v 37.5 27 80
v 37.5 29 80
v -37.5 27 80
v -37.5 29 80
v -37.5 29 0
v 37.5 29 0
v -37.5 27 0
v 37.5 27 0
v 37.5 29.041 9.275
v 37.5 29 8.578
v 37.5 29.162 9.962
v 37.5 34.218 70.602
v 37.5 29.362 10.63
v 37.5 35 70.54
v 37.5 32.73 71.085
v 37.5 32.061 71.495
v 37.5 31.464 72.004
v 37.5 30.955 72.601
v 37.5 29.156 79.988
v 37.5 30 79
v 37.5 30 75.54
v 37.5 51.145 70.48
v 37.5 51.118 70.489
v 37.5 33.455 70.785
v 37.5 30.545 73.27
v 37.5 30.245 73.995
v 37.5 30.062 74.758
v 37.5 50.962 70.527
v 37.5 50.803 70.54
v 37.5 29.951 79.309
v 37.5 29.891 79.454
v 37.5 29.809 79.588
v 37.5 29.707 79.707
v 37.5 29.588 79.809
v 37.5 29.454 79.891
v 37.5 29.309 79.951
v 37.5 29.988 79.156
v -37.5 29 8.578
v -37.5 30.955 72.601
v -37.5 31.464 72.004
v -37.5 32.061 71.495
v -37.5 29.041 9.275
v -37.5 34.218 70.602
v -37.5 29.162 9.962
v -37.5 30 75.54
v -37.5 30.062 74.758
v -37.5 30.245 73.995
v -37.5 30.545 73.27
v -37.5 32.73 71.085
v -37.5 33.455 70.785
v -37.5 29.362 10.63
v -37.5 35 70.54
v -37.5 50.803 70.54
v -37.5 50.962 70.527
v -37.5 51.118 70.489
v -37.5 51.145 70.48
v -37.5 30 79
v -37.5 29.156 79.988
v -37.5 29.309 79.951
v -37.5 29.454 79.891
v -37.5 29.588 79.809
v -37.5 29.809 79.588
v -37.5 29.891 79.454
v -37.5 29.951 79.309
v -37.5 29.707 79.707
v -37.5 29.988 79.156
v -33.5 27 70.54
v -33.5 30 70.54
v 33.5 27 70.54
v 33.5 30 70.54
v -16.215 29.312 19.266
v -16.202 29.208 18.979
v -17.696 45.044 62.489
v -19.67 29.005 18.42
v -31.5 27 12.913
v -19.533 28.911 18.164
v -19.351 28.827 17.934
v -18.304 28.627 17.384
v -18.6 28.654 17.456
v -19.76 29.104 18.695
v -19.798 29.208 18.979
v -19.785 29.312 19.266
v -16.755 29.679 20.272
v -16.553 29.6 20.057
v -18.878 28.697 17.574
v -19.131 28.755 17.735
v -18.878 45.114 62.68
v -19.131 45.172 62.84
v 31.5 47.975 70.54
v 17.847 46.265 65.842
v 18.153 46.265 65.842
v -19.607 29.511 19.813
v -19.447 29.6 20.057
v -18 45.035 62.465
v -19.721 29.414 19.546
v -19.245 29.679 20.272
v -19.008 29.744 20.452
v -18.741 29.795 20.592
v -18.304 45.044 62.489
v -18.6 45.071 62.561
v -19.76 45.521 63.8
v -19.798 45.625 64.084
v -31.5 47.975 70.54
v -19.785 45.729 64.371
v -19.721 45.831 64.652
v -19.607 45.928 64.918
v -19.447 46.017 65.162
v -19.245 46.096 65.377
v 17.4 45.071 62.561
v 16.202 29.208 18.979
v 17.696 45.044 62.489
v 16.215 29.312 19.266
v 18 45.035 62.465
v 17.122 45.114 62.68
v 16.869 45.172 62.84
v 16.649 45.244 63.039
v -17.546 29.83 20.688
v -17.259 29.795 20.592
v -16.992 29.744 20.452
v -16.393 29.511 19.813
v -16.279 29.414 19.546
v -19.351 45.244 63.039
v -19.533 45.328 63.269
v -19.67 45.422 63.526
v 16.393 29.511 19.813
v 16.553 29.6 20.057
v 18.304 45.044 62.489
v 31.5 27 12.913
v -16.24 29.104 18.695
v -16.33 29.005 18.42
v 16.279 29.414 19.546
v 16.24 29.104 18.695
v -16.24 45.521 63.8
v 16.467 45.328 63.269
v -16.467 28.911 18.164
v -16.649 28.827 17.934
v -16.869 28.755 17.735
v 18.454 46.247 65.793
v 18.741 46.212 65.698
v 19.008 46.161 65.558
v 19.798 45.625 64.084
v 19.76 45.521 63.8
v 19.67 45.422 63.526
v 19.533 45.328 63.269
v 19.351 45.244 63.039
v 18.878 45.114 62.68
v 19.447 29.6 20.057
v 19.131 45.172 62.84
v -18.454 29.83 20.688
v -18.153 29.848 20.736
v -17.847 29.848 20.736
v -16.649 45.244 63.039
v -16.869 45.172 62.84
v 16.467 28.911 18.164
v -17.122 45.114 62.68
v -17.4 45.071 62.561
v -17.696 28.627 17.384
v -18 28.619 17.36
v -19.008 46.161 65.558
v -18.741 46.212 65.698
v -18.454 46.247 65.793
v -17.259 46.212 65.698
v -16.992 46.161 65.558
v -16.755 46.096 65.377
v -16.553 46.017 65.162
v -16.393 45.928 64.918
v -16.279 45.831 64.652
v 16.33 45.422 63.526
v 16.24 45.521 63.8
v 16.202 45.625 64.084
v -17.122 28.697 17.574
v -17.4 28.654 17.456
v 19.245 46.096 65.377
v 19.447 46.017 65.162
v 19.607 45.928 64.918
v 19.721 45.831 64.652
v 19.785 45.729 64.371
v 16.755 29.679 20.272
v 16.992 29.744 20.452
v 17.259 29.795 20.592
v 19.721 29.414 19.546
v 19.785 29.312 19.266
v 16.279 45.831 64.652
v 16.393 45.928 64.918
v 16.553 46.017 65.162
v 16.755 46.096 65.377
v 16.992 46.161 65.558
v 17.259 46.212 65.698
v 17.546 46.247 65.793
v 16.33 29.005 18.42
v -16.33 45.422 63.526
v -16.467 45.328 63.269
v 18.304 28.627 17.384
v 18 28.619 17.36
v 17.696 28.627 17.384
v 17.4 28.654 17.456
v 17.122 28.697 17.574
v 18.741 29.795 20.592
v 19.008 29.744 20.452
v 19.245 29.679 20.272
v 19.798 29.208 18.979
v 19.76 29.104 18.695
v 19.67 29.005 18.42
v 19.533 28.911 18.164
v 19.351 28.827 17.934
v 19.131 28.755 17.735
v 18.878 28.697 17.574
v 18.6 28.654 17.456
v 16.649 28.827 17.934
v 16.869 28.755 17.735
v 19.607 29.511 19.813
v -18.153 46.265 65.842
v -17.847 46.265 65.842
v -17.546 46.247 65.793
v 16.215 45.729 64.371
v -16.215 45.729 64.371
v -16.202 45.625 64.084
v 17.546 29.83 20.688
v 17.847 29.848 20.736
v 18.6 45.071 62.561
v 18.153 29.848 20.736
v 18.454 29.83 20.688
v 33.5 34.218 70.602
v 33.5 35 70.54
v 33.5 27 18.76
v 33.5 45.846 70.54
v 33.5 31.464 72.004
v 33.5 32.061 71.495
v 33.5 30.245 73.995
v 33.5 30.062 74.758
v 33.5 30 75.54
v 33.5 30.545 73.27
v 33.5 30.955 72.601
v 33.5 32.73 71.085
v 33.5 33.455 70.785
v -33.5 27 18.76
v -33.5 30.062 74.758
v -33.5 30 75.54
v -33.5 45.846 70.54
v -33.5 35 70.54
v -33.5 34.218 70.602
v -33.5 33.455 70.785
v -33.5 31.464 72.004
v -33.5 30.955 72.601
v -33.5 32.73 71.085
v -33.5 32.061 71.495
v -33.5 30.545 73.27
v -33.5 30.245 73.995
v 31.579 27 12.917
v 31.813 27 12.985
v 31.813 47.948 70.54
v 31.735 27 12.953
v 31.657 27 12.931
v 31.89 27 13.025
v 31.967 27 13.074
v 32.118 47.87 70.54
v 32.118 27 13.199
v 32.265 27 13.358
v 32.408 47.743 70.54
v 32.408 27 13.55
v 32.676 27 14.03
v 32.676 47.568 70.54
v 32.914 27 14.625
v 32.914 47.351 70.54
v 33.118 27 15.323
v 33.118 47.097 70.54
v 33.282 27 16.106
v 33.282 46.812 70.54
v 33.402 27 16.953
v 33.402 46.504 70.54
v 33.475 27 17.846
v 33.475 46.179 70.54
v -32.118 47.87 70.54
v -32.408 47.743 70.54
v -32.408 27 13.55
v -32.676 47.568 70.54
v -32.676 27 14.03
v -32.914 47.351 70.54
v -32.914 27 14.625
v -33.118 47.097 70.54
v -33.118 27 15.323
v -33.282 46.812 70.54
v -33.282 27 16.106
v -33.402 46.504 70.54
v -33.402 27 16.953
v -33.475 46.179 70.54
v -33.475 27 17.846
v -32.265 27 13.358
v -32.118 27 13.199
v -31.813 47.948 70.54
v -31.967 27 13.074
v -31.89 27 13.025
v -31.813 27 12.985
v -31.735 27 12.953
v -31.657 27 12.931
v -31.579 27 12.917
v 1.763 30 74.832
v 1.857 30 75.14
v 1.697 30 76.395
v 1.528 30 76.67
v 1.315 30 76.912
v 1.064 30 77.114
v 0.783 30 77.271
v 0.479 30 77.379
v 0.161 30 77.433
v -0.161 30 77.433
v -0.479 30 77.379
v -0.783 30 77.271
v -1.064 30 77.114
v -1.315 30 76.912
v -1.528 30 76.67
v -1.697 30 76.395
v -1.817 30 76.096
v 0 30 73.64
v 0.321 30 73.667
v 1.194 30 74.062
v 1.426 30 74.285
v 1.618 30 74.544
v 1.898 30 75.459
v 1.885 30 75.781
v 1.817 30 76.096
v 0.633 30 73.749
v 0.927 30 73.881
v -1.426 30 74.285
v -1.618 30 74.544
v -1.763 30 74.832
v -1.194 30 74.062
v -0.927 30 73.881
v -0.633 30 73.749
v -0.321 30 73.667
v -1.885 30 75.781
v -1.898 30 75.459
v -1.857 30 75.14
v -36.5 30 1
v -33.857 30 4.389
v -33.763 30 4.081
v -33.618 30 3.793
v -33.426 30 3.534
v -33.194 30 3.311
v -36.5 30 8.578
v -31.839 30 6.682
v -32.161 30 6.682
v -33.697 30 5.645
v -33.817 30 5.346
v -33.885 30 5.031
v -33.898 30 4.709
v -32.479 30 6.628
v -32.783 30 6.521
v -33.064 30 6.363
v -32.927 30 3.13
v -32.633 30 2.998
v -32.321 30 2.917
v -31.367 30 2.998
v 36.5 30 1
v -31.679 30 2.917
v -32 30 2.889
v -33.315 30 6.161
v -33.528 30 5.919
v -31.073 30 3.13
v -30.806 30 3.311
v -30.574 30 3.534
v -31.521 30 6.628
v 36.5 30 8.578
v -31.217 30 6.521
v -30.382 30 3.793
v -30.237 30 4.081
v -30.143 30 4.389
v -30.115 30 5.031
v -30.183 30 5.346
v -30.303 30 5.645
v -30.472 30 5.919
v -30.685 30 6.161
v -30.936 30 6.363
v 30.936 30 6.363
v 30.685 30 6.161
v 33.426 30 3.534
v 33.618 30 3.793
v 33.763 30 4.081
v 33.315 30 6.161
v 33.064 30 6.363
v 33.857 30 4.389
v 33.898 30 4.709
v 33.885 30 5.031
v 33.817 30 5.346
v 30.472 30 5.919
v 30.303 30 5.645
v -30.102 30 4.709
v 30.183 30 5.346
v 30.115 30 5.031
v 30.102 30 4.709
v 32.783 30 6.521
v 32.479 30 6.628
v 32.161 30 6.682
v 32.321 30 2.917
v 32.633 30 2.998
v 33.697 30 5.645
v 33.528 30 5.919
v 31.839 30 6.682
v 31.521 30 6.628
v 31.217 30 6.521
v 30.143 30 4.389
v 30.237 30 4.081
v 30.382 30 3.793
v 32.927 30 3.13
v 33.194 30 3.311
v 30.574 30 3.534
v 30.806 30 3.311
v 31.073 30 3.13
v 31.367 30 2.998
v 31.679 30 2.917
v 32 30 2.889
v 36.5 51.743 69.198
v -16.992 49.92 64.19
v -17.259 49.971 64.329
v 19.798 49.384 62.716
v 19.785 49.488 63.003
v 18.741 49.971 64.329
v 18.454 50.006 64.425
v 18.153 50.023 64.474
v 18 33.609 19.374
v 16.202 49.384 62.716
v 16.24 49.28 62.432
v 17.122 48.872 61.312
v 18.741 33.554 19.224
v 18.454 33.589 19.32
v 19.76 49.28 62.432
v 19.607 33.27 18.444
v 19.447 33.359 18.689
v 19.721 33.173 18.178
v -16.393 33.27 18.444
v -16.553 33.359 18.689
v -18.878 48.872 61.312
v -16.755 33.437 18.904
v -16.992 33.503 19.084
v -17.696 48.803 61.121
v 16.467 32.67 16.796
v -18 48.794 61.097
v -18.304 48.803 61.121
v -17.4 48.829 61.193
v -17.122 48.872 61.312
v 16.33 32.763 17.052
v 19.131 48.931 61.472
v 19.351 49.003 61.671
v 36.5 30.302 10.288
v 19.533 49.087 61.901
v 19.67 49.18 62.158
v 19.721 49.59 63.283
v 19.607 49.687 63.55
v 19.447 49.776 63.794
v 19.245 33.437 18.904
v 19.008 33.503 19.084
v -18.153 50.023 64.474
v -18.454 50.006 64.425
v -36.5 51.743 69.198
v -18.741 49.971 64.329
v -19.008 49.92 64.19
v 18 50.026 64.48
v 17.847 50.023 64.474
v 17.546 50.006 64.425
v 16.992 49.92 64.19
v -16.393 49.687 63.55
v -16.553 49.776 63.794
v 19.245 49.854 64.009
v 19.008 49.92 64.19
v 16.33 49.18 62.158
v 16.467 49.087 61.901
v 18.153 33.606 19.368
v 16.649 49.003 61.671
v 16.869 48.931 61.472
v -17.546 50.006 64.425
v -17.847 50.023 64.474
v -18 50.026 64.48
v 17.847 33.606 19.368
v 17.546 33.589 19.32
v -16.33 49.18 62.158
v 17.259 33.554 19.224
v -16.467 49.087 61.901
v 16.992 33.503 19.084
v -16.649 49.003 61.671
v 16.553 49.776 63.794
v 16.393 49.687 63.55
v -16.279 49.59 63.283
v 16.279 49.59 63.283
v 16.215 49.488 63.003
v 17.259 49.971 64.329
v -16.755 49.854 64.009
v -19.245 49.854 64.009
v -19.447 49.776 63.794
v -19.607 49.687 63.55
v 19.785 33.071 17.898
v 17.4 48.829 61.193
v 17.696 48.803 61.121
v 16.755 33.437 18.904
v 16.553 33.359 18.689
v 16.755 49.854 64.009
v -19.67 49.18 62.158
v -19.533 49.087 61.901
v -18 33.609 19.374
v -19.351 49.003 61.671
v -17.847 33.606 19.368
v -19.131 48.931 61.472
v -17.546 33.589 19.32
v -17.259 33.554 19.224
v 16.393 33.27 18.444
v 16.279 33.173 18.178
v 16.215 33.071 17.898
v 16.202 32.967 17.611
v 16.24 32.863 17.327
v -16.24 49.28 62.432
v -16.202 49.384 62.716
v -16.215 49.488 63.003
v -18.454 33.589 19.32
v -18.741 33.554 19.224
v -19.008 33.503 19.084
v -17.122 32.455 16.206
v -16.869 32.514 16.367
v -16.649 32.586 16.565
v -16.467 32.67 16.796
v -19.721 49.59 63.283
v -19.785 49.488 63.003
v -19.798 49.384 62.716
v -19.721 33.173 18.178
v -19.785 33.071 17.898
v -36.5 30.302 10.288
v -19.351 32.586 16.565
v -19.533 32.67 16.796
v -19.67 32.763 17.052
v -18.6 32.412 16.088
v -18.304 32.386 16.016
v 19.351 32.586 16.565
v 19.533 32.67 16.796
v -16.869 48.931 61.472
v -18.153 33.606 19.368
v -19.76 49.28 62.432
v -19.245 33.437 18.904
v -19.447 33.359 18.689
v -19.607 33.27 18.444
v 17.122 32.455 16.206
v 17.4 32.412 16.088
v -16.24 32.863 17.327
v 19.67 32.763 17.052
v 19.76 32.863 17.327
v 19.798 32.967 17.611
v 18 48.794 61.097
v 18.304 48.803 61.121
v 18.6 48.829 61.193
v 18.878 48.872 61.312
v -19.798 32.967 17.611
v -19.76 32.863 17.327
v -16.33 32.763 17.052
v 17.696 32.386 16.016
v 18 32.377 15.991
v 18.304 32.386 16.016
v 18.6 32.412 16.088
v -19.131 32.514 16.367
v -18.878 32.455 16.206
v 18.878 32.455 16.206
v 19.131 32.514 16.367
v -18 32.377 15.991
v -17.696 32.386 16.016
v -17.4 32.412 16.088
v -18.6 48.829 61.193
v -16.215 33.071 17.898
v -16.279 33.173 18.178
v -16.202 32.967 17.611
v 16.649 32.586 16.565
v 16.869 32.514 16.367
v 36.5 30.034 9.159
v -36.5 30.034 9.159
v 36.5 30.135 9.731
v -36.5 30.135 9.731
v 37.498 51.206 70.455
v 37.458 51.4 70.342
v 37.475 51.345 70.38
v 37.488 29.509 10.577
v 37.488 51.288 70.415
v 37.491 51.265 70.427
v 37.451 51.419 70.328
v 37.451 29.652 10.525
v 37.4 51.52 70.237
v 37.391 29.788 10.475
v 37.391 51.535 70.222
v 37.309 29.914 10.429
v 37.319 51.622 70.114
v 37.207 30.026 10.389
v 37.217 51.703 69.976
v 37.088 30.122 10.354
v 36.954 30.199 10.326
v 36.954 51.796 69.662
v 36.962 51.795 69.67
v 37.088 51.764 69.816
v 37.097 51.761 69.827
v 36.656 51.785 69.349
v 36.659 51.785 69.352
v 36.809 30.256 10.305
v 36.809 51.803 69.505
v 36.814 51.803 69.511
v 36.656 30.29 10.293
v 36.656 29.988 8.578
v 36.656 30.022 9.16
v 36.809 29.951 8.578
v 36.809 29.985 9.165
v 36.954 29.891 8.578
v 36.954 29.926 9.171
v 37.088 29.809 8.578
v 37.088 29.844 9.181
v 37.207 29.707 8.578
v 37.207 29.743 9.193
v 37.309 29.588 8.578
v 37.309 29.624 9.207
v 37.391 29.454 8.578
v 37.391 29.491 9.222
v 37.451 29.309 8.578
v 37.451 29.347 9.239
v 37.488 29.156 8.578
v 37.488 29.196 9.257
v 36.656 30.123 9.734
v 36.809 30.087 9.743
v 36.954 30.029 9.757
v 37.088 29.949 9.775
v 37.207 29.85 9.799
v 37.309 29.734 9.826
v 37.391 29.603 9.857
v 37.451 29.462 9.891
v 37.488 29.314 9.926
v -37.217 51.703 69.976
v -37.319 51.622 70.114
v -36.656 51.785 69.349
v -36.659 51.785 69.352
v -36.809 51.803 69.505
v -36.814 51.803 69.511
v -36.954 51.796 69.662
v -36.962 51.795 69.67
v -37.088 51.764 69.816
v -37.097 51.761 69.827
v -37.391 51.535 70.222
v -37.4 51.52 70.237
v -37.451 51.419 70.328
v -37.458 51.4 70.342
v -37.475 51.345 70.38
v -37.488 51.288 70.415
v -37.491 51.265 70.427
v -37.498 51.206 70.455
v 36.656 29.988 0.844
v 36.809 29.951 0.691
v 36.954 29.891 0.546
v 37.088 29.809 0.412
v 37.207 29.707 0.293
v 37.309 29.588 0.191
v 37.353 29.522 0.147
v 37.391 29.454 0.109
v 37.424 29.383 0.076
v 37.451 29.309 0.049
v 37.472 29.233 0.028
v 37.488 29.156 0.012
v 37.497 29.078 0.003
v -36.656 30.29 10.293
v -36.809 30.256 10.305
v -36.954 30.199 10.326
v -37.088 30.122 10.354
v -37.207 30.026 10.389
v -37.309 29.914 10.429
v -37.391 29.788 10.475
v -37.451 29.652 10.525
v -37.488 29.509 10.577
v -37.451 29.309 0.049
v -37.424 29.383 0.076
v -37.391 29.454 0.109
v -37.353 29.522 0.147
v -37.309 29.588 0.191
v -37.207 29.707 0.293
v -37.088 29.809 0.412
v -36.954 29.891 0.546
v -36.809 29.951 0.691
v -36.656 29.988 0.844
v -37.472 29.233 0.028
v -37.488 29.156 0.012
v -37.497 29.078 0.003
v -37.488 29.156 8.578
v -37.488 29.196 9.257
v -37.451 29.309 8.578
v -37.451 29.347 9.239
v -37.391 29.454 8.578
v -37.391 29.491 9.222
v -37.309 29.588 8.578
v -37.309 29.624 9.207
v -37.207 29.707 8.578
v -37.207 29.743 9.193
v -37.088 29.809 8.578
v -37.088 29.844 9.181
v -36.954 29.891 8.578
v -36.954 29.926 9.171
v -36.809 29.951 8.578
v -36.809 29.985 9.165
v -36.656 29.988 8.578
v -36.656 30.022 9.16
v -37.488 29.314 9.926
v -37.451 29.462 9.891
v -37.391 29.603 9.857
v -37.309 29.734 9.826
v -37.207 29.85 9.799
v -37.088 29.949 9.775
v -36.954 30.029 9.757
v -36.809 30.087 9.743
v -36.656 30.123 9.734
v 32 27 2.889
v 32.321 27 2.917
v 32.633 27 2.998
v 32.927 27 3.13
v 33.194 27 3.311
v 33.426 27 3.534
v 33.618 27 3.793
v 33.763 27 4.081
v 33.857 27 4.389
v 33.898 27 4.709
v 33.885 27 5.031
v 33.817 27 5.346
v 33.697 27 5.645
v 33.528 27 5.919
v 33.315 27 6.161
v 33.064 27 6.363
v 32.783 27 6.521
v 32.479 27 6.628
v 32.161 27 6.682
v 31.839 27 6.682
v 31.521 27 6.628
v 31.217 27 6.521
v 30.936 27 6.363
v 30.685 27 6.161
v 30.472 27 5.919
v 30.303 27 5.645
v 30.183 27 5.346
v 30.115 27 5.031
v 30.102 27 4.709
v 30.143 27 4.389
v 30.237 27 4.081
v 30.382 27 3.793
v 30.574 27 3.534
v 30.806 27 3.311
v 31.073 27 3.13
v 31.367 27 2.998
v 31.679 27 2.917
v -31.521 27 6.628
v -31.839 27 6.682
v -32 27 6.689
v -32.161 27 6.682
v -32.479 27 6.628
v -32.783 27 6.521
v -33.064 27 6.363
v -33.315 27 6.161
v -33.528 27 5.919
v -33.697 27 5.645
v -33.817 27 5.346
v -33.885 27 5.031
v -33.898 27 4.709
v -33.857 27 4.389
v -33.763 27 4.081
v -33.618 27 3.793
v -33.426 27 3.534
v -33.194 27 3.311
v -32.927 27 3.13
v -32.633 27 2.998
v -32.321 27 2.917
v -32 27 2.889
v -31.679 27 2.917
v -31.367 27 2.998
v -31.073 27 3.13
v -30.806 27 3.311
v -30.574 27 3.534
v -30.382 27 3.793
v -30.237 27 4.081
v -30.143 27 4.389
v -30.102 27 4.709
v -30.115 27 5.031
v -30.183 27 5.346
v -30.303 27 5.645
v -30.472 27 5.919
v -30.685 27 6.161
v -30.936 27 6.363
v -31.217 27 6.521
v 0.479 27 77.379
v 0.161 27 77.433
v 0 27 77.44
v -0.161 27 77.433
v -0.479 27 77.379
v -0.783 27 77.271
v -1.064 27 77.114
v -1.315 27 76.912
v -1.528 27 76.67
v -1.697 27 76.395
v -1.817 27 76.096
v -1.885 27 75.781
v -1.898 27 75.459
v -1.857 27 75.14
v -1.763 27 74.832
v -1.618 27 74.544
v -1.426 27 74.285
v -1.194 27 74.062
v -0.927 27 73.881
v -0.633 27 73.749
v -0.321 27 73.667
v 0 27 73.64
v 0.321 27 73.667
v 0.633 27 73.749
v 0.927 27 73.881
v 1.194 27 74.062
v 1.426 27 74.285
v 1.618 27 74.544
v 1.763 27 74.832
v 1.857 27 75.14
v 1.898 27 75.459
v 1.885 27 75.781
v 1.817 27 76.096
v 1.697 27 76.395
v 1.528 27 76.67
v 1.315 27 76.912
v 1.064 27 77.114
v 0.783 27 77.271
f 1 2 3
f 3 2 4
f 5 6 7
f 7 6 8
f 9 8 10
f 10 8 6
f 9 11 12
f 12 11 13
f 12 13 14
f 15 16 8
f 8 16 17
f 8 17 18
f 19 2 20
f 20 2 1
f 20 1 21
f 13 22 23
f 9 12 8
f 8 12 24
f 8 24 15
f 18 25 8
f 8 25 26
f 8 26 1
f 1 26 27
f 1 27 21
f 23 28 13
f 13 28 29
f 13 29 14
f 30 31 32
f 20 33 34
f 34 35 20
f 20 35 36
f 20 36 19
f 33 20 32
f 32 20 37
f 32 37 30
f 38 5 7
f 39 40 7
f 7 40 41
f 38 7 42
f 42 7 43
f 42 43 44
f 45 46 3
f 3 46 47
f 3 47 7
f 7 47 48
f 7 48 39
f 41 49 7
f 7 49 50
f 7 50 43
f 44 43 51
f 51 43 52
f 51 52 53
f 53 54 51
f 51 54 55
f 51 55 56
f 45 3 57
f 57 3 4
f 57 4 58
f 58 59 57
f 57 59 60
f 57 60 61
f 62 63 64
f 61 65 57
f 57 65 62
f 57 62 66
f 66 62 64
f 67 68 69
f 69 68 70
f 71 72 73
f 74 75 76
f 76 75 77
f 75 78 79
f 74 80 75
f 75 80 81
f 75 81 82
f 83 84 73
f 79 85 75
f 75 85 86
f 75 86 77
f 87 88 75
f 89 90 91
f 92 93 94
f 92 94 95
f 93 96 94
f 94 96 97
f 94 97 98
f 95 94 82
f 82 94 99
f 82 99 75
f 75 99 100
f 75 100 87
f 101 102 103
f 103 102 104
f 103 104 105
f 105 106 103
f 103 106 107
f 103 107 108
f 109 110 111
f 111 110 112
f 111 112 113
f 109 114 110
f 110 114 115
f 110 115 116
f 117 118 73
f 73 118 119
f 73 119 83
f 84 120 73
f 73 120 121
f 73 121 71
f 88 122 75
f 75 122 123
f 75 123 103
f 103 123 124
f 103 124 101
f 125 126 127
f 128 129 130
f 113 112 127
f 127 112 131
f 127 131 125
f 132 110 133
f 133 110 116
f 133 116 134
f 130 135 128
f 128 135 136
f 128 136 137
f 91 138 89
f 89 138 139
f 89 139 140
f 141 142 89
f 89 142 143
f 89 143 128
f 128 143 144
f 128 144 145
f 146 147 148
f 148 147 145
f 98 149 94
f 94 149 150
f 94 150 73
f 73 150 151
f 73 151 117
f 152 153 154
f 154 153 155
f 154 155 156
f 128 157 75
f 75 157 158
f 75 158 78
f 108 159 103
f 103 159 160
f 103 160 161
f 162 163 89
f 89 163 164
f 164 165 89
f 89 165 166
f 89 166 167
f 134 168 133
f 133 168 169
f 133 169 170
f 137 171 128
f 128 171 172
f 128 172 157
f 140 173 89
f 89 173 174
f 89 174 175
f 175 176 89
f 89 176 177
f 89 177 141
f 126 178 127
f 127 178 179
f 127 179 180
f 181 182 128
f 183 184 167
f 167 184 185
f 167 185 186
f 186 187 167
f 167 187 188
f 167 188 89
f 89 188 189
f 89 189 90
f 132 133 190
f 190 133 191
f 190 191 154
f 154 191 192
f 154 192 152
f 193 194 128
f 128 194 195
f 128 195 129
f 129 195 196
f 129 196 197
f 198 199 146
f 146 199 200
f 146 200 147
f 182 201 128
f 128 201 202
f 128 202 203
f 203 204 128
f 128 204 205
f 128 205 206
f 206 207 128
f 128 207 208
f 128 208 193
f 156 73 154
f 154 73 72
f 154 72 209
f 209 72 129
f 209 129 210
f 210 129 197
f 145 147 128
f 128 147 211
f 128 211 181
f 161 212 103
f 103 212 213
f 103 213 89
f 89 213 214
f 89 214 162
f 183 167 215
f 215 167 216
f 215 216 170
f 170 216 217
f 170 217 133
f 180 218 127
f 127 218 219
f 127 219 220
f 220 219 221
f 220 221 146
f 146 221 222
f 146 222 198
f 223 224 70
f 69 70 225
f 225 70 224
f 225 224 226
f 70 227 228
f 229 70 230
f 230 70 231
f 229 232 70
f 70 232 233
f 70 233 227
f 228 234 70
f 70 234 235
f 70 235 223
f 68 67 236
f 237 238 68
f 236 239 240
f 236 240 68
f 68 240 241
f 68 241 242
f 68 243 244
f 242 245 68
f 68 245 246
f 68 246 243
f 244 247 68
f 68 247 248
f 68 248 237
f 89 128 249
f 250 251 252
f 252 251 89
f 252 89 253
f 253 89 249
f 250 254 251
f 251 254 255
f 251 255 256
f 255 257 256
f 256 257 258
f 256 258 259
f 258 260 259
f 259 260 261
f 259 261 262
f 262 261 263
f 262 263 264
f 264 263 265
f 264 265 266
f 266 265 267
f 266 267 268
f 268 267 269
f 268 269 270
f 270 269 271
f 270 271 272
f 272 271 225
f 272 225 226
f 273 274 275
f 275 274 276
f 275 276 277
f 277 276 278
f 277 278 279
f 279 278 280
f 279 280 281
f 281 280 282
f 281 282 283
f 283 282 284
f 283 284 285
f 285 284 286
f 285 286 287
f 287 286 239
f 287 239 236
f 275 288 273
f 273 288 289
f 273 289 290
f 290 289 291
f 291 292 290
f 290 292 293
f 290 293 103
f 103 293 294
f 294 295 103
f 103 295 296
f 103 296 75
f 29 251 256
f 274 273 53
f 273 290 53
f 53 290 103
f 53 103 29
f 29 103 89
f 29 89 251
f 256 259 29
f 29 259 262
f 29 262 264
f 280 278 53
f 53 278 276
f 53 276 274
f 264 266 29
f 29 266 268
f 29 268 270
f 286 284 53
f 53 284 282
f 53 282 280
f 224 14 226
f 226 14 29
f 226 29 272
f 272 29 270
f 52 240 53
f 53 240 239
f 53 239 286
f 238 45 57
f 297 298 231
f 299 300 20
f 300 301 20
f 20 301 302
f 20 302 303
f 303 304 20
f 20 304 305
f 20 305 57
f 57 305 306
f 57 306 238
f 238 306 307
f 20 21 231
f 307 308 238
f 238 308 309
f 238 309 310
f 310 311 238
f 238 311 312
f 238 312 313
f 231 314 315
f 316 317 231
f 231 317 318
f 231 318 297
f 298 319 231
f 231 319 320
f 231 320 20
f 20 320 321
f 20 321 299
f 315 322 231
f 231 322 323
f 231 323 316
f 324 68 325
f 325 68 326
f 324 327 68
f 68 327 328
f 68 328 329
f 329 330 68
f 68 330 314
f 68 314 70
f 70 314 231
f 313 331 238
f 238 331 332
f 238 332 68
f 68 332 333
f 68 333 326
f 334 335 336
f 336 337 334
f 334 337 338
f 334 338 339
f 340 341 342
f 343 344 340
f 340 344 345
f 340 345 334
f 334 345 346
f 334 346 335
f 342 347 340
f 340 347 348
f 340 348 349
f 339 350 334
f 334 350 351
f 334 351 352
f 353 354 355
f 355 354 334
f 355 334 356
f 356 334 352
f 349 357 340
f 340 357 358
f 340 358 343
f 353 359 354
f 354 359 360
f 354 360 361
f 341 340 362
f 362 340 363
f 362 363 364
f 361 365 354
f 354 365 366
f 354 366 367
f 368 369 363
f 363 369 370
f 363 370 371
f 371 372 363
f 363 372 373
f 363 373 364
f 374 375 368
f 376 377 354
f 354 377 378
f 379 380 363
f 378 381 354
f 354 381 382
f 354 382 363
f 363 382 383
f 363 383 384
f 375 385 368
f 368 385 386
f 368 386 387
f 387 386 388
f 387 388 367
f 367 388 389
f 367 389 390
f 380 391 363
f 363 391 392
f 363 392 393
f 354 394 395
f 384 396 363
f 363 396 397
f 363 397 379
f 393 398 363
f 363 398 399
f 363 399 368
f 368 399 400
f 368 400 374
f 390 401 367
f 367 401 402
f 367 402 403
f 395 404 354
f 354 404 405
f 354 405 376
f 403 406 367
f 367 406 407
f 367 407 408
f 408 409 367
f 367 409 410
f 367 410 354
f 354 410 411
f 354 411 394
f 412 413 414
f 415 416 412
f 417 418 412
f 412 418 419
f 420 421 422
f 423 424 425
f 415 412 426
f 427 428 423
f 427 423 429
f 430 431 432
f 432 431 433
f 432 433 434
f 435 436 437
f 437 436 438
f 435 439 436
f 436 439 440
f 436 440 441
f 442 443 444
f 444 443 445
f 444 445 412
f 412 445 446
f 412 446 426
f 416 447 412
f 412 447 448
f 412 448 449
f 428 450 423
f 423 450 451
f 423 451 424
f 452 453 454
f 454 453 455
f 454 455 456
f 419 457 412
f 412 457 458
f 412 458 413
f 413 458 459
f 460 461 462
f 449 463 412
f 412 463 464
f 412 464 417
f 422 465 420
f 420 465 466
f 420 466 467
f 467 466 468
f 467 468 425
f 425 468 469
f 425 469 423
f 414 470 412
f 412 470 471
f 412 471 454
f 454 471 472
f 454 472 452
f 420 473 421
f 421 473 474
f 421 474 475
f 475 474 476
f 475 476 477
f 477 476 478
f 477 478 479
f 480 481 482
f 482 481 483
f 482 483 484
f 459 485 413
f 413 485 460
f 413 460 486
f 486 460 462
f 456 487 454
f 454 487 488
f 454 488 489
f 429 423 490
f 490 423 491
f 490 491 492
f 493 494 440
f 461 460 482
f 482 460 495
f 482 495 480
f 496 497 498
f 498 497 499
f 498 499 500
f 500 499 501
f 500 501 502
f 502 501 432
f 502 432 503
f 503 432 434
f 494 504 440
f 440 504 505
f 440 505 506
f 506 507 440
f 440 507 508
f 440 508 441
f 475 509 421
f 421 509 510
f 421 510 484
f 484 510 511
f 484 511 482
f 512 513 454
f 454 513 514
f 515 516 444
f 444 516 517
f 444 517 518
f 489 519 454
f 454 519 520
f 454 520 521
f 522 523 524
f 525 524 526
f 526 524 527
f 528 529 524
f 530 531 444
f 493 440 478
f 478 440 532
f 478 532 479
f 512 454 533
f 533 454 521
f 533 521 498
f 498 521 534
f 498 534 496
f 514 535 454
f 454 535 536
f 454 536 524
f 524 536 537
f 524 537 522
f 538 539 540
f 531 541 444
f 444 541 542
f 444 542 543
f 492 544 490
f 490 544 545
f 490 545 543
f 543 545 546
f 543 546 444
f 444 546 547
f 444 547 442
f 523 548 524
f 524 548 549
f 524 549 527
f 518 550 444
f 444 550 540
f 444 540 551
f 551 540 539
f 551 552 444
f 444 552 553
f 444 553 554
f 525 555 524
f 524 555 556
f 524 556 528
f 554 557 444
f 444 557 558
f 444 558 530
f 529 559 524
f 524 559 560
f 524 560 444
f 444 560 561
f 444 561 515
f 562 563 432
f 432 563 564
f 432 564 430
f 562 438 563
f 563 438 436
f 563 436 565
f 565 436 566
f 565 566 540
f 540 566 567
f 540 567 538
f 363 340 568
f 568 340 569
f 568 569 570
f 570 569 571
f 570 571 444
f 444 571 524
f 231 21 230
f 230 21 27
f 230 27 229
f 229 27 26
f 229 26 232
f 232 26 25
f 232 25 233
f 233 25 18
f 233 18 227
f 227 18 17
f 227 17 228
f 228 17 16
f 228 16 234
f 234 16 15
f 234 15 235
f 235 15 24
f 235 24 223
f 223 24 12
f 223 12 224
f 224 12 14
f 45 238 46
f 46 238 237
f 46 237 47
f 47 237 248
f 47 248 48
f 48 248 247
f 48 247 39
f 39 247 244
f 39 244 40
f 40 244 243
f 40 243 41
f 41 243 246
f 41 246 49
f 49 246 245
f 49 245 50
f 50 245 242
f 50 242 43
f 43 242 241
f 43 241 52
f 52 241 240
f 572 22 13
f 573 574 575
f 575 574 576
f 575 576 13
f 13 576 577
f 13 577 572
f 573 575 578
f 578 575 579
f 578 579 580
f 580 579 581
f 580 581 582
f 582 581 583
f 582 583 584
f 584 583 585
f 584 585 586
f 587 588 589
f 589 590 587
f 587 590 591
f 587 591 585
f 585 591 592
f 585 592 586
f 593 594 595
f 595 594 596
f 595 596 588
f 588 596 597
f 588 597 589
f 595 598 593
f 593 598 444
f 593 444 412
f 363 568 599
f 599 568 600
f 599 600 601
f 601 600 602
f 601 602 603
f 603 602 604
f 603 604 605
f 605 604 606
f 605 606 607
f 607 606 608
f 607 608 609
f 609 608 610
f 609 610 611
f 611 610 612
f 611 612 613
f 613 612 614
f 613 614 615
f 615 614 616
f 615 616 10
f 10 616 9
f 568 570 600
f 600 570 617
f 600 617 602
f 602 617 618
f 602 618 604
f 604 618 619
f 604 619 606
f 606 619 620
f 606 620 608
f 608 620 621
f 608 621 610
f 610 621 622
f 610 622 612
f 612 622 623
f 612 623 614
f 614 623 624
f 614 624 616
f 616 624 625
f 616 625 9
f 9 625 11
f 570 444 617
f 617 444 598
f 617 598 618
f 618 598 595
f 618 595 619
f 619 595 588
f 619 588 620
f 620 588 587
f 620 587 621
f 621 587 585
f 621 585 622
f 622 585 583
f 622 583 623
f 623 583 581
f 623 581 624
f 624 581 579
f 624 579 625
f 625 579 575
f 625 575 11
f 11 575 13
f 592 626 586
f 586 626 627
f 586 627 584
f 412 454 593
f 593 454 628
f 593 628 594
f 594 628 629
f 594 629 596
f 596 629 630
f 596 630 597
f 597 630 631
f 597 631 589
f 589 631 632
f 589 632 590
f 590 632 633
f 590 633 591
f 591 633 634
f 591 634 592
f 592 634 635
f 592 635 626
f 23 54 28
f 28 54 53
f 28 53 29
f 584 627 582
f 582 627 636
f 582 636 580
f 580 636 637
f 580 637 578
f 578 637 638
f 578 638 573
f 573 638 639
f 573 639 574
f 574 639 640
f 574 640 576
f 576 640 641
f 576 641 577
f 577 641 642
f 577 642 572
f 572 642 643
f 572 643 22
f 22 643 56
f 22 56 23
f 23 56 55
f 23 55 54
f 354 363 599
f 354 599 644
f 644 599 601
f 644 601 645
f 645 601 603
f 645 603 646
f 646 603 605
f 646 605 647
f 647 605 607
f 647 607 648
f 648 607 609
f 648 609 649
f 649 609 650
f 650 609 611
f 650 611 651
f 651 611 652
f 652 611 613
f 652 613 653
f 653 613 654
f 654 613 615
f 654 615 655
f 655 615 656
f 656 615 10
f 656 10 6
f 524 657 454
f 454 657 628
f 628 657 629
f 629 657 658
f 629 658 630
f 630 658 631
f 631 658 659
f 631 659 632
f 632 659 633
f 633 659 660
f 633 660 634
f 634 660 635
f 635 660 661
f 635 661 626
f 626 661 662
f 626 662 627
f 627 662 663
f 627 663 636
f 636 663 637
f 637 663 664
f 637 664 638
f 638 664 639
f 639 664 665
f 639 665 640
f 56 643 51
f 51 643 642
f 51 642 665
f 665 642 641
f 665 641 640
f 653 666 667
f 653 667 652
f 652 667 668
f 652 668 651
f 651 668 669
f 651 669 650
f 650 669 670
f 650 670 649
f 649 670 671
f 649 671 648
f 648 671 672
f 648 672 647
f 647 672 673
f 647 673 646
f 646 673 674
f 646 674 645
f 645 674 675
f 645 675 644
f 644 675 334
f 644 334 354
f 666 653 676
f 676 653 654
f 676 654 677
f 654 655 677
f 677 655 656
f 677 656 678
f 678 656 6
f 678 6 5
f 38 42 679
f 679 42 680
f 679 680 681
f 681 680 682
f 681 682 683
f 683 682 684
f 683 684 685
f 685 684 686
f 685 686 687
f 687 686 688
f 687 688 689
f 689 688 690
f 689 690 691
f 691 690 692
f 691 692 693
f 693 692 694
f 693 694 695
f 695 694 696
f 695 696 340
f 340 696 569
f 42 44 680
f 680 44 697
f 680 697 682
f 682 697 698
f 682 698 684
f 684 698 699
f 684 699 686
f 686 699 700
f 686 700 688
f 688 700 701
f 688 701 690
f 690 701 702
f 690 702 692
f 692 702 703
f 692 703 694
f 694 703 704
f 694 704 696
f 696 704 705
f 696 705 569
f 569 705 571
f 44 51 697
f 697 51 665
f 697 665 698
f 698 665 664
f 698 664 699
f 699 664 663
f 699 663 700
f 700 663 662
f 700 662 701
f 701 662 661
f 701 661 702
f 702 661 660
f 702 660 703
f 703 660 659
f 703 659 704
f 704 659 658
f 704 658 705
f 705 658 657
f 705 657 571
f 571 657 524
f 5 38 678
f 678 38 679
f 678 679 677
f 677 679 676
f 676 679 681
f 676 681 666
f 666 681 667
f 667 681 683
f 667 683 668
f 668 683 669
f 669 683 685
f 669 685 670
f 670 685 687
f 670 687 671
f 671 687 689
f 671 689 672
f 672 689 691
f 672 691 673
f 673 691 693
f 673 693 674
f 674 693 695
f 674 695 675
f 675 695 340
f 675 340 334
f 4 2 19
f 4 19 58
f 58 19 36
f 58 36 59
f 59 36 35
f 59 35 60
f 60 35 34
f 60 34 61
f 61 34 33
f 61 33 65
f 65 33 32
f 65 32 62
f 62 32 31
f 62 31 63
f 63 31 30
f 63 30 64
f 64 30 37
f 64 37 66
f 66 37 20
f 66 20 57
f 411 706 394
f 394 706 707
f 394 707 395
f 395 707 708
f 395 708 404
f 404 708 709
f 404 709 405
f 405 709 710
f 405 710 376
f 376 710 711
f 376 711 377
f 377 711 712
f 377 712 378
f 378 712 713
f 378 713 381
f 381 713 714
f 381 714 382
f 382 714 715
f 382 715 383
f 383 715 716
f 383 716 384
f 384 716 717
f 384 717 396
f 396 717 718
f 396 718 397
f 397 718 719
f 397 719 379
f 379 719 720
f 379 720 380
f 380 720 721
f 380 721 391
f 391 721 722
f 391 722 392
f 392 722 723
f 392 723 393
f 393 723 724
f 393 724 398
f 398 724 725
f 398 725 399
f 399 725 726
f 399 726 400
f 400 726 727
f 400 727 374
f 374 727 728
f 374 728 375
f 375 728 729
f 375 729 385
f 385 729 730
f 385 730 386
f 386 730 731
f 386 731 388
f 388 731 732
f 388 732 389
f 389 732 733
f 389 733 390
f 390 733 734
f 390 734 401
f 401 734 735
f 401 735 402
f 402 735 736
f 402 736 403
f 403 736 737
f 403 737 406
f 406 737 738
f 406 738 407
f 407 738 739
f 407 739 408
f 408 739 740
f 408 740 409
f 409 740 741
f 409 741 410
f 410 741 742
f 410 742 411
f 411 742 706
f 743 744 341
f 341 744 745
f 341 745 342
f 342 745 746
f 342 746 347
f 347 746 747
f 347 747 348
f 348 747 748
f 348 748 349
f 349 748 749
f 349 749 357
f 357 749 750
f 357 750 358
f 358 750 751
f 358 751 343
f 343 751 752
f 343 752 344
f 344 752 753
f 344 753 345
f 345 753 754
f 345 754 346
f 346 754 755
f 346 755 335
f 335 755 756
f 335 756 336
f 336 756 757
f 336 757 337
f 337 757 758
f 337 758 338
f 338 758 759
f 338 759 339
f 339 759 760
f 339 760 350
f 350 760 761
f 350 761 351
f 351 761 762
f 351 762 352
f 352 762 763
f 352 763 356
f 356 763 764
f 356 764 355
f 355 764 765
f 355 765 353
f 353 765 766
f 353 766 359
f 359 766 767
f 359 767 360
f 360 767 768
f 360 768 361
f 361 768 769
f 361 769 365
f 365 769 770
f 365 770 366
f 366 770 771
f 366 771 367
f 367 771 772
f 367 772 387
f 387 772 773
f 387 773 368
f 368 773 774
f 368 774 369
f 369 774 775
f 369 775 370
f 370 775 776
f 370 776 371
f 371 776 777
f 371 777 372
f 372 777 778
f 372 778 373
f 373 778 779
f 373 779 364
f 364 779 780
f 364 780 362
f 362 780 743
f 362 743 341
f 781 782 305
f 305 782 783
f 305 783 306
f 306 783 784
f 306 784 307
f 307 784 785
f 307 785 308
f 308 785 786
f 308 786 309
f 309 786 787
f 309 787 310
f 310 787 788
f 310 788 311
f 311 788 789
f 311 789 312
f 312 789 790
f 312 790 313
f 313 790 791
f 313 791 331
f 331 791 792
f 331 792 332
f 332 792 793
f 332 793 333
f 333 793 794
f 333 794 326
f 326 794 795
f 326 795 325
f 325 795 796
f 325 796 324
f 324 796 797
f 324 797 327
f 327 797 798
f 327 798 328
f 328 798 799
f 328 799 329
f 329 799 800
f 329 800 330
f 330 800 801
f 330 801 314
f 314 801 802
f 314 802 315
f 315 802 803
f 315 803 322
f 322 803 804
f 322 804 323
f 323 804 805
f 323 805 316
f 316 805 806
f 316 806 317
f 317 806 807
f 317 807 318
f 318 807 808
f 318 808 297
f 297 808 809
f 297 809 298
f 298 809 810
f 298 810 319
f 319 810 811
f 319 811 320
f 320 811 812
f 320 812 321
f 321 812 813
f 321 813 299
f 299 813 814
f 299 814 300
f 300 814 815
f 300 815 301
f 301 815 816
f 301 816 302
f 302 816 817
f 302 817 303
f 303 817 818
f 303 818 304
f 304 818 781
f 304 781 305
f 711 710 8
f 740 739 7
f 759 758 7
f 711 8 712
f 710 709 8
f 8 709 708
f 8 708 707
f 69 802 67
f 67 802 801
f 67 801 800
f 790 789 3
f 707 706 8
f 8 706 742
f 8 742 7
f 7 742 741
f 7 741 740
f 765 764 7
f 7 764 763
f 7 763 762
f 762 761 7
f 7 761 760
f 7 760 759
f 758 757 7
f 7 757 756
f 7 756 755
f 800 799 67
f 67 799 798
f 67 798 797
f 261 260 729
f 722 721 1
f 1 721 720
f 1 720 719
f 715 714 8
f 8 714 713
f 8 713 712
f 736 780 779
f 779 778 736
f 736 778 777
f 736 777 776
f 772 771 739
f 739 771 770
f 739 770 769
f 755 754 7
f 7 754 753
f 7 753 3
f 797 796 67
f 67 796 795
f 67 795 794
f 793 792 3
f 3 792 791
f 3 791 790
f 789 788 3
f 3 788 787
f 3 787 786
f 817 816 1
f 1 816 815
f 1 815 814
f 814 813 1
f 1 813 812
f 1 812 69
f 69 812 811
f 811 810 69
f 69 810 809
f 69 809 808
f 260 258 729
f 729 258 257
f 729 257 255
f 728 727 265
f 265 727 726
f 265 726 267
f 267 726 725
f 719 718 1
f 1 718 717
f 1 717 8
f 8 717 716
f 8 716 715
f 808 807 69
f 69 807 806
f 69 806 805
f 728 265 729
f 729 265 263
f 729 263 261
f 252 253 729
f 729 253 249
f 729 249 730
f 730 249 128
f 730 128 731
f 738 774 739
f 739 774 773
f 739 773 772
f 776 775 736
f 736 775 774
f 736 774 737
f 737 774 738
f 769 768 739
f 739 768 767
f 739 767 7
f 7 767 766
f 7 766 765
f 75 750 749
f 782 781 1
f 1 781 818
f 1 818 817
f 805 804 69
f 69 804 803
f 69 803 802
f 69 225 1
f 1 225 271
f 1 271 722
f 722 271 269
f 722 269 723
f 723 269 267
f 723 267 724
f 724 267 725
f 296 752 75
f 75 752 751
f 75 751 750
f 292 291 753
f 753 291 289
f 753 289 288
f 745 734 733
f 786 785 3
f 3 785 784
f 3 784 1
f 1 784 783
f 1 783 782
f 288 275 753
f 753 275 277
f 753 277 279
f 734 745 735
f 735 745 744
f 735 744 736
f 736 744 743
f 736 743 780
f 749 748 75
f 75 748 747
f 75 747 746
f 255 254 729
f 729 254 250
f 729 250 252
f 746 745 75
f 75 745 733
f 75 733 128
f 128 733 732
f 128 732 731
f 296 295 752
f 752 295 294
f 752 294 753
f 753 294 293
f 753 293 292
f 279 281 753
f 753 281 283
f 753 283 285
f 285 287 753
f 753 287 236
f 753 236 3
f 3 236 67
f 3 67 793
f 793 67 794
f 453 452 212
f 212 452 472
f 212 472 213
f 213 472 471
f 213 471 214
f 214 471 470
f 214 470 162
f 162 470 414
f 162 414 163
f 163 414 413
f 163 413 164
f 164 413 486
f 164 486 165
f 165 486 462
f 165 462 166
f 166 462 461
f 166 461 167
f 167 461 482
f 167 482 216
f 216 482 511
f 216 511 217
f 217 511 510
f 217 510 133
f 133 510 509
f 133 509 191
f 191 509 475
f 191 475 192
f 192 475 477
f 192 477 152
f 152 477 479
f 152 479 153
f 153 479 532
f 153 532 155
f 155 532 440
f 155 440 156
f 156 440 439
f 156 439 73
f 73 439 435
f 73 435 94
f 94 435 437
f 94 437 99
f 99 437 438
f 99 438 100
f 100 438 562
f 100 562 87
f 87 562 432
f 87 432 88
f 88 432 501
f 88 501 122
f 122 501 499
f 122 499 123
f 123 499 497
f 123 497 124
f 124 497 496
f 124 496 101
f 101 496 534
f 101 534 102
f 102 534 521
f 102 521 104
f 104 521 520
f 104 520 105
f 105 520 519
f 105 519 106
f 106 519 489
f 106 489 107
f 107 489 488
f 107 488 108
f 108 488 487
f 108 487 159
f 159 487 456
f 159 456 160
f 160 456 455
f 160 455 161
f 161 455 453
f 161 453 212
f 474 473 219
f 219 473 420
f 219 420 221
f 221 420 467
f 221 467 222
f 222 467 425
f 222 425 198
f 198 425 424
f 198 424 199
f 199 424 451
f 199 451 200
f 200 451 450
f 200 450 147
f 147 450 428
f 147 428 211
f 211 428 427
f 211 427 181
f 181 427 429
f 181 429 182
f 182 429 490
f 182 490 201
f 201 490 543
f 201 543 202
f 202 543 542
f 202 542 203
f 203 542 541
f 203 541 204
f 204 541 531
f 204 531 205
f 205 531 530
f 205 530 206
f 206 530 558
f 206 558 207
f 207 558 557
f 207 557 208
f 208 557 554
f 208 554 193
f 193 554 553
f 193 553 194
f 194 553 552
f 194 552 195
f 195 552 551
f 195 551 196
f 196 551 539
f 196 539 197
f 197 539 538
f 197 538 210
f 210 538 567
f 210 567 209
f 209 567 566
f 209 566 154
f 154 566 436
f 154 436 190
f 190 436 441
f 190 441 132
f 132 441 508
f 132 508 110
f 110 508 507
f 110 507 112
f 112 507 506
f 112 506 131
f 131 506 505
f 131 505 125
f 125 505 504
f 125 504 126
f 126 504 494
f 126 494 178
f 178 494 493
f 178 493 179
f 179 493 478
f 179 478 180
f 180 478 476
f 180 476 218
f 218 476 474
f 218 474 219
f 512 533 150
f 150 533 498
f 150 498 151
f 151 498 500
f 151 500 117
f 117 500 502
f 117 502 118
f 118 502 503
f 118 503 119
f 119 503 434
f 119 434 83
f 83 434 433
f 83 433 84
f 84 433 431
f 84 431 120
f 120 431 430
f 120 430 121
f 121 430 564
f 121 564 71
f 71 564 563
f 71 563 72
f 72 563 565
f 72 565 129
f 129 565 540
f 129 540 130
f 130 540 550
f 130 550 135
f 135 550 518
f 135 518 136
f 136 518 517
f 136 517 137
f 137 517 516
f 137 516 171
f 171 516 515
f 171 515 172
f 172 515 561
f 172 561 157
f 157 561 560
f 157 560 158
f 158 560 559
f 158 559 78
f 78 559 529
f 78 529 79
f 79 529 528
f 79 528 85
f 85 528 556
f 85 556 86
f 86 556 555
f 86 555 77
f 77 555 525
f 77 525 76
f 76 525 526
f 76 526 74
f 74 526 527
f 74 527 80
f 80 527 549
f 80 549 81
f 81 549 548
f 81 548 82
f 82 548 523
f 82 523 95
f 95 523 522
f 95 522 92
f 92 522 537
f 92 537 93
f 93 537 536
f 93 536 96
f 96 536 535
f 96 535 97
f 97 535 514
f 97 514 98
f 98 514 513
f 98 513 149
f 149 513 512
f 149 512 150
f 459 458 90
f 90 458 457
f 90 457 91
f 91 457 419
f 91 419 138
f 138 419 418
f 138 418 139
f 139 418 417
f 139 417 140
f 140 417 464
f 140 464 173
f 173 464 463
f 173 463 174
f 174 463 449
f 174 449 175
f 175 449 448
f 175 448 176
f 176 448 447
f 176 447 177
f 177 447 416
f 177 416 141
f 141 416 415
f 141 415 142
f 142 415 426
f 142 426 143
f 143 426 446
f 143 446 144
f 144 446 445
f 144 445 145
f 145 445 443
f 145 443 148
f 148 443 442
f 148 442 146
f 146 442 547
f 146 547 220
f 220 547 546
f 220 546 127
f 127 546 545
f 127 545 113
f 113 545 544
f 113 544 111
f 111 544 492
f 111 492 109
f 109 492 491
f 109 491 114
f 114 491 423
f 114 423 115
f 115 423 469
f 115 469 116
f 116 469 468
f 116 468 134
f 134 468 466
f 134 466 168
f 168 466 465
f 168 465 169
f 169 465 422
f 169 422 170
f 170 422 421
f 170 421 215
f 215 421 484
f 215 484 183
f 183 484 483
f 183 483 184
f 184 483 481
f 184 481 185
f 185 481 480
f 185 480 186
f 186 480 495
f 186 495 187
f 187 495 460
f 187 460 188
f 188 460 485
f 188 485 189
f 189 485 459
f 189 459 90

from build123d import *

# Parameters (mm, degrees)
EXTRUDE_1_DEPTH          = 37.5
SHELL_START              = -33.5
SHELL_1_DEPTH            = 67
FILLET_1_R               = 5
FILLET_3_R               = 2
FILLET_4_R               = 1
CUT_EXTRUDE_2_DEPTH      = 94.307288033
CUT_EXTRUDE_2_DEPTH_BACK = 3
SKETCH_3_R               = 1.9
CUT_EXTRUDE_1_DEPTH      = 103.419810201
CUT_EXTRUDE_1_DEPTH_BACK = 103.419810201
SKETCH_2_W               = 80
SKETCH_2_H               = 27
CUT_EXTRUDE_3_REACH      = 102.177
SKETCH_4_R               = 1.8


# Read off the part's stored shape, not the designer's step: 抽壳1
with BuildPart() as part:
    # 草图1 → 凸台-拉伸1 (new, symmetric)
    with BuildSketch(Plane(origin=(0, 0, 0), x_dir=(0, 0, -1), z_dir=(1, 0, 0))):
        Polygon((-70.540010176, 52.231309316), (-70.540010176, 30), (-80, 30), (-80, 0), (0, 0), (0, 30), (-9.459989824, 30), align=None)
    extrude(amount=EXTRUDE_1_DEPTH, both=True)

    # 抽壳1 outline → 抽壳1 (cut)
    with BuildSketch(Plane.YZ.offset(SHELL_START)):
        Polygon((47.974598226, 70.540010176), (22, 70.540010176), (22, 80), (4, 80), (4, 6), (24.483955603, 6), align=None)
    extrude(amount=SHELL_1_DEPTH, mode=Mode.SUBTRACT)

    # 圆角1
    fillet_1_edges = [part.edges().sort_by_distance(p)[0] for p in [
        (0, 30, 9.459989824),
        (35.5, 30, 70.540010176),
        (-35.5, 30, 70.540010176),
    ]]
    fillet(fillet_1_edges, radius=FILLET_1_R)

    # 圆角3
    fillet_3_edges = [part.edges().sort_by_distance(p)[0] for p in [
        (33.5, 4, 43),
        (33.5, 36.229276914, 38.270005088),
        (-33.5, 36.229276914, 38.270005088),
        (-33.5, 4, 43),
    ]]
    fillet(fillet_3_edges, radius=FILLET_3_R)

    # 圆角4
    fillet_4_edges = [part.edges().sort_by_distance(p)[0] for p in [
        (-37.5, 30, 4.28917746),
        (-37.5, 30.075961235, 9.446595809),
        (37.5, 30, 4.28917746),
        (37.5, 30.075961235, 9.446595809),
        (-37.5, 41.266423106, 40.414232907),
        (0, 52.231309316, 70.540010176),
        (37.5, 41.266423106, 40.414232907),
        (37.5, 0, 40),
        (-37.5, 0, 40),
        (0, 0, 80),
        (0, 0, 0),
        (0, 30, 0),
        (0, 30, 80),
    ]]
    fillet(fillet_4_edges, radius=FILLET_4_R)

    # 草图3 → 切除-拉伸2 (cut, two sides: drawn at the far end of the back side and taken through both)
    with BuildSketch(Plane(origin=(0, 30, 0), x_dir=(1, 0, 0), z_dir=(0, 1, 0)).offset(-CUT_EXTRUDE_2_DEPTH_BACK)):
        with Locations(Location((-32, -4.78917746, 0), (0, 0, 90))):
            Circle(SKETCH_3_R)
        with Locations(Location((32, -4.78917746, 0), (0, 0, 90))):
            Circle(SKETCH_3_R)
        with Locations(Location((0, -75.540010176, 0), (0, 0, 90))):
            Circle(SKETCH_3_R)
    extrude(amount=CUT_EXTRUDE_2_DEPTH + CUT_EXTRUDE_2_DEPTH_BACK, mode=Mode.SUBTRACT)

    # 草图2 → 切除-拉伸1 (cut, two sides: drawn at the far end of the back side and taken through both)
    with BuildSketch(Plane(origin=(0, 0, 0), x_dir=(0, 0, -1), z_dir=(1, 0, 0)).offset(-CUT_EXTRUDE_1_DEPTH_BACK)):
        with Locations((-40, 13.5)):
            Rectangle(SKETCH_2_W, SKETCH_2_H)
    extrude(amount=CUT_EXTRUDE_1_DEPTH + CUT_EXTRUDE_1_DEPTH_BACK, mode=Mode.SUBTRACT)

    # 草图4 → 切除-拉伸3 (cut, up to next)
    with BuildSketch(Plane(origin=(0, 19.69151404, -7.167124978), x_dir=(1, 0, 0), z_dir=(0, -0.9396926207859104, 0.34202014332566316)), mode=Mode.PRIVATE) as cut_extrude_3_sk1:
        with Locations(Location((-18, 75.900768948, 0), (0, 0, 270))):
            Circle(SKETCH_4_R)
    cut_extrude_3_tool1 = extrude(cut_extrude_3_sk1.sketch, amount=-CUT_EXTRUDE_3_REACH, mode=Mode.PRIVATE) & part.part
    # 草图4 → 切除-拉伸3 (cut, up to next)
    with BuildSketch(Plane(origin=(0, 19.69151404, -7.167124978), x_dir=(1, 0, 0), z_dir=(0, -0.9396926207859104, 0.34202014332566316)), mode=Mode.PRIVATE) as cut_extrude_3_sk2:
        with Locations(Location((18, 75.900768948, 0), (0, 0, 270))):
            Circle(SKETCH_4_R)
    cut_extrude_3_tool2 = extrude(cut_extrude_3_sk2.sketch, amount=-CUT_EXTRUDE_3_REACH, mode=Mode.PRIVATE) & part.part
    # 草图4 → 切除-拉伸3 (cut, up to next)
    with BuildSketch(Plane(origin=(0, 19.69151404, -7.167124978), x_dir=(1, 0, 0), z_dir=(0, -0.9396926207859104, 0.34202014332566316)), mode=Mode.PRIVATE) as cut_extrude_3_sk3:
        with Locations(Location((-18, 27.900768948, 0), (0, 0, 270))):
            Circle(SKETCH_4_R)
    cut_extrude_3_tool3 = extrude(cut_extrude_3_sk3.sketch, amount=-CUT_EXTRUDE_3_REACH, mode=Mode.PRIVATE) & part.part
    # 草图4 → 切除-拉伸3 (cut, up to next)
    with BuildSketch(Plane(origin=(0, 19.69151404, -7.167124978), x_dir=(1, 0, 0), z_dir=(0, -0.9396926207859104, 0.34202014332566316)), mode=Mode.PRIVATE) as cut_extrude_3_sk4:
        with Locations(Location((18, 27.900768948, 0), (0, 0, 270))):
            Circle(SKETCH_4_R)
    cut_extrude_3_tool4 = extrude(cut_extrude_3_sk4.sketch, amount=-CUT_EXTRUDE_3_REACH, mode=Mode.PRIVATE) & part.part
    add(cut_extrude_3_tool1.solids().sort_by_distance((-18, 45.651106, 64.156268))[0], mode=Mode.SUBTRACT)
    add(cut_extrude_3_tool2.solids().sort_by_distance((18, 45.651106, 64.156268))[0], mode=Mode.SUBTRACT)
    add(cut_extrude_3_tool3.solids().sort_by_distance((-18, 29.234139, 19.051022))[0], mode=Mode.SUBTRACT)
    add(cut_extrude_3_tool4.solids().sort_by_distance((18, 29.234139, 19.051022))[0], mode=Mode.SUBTRACT)


solid = part.part
